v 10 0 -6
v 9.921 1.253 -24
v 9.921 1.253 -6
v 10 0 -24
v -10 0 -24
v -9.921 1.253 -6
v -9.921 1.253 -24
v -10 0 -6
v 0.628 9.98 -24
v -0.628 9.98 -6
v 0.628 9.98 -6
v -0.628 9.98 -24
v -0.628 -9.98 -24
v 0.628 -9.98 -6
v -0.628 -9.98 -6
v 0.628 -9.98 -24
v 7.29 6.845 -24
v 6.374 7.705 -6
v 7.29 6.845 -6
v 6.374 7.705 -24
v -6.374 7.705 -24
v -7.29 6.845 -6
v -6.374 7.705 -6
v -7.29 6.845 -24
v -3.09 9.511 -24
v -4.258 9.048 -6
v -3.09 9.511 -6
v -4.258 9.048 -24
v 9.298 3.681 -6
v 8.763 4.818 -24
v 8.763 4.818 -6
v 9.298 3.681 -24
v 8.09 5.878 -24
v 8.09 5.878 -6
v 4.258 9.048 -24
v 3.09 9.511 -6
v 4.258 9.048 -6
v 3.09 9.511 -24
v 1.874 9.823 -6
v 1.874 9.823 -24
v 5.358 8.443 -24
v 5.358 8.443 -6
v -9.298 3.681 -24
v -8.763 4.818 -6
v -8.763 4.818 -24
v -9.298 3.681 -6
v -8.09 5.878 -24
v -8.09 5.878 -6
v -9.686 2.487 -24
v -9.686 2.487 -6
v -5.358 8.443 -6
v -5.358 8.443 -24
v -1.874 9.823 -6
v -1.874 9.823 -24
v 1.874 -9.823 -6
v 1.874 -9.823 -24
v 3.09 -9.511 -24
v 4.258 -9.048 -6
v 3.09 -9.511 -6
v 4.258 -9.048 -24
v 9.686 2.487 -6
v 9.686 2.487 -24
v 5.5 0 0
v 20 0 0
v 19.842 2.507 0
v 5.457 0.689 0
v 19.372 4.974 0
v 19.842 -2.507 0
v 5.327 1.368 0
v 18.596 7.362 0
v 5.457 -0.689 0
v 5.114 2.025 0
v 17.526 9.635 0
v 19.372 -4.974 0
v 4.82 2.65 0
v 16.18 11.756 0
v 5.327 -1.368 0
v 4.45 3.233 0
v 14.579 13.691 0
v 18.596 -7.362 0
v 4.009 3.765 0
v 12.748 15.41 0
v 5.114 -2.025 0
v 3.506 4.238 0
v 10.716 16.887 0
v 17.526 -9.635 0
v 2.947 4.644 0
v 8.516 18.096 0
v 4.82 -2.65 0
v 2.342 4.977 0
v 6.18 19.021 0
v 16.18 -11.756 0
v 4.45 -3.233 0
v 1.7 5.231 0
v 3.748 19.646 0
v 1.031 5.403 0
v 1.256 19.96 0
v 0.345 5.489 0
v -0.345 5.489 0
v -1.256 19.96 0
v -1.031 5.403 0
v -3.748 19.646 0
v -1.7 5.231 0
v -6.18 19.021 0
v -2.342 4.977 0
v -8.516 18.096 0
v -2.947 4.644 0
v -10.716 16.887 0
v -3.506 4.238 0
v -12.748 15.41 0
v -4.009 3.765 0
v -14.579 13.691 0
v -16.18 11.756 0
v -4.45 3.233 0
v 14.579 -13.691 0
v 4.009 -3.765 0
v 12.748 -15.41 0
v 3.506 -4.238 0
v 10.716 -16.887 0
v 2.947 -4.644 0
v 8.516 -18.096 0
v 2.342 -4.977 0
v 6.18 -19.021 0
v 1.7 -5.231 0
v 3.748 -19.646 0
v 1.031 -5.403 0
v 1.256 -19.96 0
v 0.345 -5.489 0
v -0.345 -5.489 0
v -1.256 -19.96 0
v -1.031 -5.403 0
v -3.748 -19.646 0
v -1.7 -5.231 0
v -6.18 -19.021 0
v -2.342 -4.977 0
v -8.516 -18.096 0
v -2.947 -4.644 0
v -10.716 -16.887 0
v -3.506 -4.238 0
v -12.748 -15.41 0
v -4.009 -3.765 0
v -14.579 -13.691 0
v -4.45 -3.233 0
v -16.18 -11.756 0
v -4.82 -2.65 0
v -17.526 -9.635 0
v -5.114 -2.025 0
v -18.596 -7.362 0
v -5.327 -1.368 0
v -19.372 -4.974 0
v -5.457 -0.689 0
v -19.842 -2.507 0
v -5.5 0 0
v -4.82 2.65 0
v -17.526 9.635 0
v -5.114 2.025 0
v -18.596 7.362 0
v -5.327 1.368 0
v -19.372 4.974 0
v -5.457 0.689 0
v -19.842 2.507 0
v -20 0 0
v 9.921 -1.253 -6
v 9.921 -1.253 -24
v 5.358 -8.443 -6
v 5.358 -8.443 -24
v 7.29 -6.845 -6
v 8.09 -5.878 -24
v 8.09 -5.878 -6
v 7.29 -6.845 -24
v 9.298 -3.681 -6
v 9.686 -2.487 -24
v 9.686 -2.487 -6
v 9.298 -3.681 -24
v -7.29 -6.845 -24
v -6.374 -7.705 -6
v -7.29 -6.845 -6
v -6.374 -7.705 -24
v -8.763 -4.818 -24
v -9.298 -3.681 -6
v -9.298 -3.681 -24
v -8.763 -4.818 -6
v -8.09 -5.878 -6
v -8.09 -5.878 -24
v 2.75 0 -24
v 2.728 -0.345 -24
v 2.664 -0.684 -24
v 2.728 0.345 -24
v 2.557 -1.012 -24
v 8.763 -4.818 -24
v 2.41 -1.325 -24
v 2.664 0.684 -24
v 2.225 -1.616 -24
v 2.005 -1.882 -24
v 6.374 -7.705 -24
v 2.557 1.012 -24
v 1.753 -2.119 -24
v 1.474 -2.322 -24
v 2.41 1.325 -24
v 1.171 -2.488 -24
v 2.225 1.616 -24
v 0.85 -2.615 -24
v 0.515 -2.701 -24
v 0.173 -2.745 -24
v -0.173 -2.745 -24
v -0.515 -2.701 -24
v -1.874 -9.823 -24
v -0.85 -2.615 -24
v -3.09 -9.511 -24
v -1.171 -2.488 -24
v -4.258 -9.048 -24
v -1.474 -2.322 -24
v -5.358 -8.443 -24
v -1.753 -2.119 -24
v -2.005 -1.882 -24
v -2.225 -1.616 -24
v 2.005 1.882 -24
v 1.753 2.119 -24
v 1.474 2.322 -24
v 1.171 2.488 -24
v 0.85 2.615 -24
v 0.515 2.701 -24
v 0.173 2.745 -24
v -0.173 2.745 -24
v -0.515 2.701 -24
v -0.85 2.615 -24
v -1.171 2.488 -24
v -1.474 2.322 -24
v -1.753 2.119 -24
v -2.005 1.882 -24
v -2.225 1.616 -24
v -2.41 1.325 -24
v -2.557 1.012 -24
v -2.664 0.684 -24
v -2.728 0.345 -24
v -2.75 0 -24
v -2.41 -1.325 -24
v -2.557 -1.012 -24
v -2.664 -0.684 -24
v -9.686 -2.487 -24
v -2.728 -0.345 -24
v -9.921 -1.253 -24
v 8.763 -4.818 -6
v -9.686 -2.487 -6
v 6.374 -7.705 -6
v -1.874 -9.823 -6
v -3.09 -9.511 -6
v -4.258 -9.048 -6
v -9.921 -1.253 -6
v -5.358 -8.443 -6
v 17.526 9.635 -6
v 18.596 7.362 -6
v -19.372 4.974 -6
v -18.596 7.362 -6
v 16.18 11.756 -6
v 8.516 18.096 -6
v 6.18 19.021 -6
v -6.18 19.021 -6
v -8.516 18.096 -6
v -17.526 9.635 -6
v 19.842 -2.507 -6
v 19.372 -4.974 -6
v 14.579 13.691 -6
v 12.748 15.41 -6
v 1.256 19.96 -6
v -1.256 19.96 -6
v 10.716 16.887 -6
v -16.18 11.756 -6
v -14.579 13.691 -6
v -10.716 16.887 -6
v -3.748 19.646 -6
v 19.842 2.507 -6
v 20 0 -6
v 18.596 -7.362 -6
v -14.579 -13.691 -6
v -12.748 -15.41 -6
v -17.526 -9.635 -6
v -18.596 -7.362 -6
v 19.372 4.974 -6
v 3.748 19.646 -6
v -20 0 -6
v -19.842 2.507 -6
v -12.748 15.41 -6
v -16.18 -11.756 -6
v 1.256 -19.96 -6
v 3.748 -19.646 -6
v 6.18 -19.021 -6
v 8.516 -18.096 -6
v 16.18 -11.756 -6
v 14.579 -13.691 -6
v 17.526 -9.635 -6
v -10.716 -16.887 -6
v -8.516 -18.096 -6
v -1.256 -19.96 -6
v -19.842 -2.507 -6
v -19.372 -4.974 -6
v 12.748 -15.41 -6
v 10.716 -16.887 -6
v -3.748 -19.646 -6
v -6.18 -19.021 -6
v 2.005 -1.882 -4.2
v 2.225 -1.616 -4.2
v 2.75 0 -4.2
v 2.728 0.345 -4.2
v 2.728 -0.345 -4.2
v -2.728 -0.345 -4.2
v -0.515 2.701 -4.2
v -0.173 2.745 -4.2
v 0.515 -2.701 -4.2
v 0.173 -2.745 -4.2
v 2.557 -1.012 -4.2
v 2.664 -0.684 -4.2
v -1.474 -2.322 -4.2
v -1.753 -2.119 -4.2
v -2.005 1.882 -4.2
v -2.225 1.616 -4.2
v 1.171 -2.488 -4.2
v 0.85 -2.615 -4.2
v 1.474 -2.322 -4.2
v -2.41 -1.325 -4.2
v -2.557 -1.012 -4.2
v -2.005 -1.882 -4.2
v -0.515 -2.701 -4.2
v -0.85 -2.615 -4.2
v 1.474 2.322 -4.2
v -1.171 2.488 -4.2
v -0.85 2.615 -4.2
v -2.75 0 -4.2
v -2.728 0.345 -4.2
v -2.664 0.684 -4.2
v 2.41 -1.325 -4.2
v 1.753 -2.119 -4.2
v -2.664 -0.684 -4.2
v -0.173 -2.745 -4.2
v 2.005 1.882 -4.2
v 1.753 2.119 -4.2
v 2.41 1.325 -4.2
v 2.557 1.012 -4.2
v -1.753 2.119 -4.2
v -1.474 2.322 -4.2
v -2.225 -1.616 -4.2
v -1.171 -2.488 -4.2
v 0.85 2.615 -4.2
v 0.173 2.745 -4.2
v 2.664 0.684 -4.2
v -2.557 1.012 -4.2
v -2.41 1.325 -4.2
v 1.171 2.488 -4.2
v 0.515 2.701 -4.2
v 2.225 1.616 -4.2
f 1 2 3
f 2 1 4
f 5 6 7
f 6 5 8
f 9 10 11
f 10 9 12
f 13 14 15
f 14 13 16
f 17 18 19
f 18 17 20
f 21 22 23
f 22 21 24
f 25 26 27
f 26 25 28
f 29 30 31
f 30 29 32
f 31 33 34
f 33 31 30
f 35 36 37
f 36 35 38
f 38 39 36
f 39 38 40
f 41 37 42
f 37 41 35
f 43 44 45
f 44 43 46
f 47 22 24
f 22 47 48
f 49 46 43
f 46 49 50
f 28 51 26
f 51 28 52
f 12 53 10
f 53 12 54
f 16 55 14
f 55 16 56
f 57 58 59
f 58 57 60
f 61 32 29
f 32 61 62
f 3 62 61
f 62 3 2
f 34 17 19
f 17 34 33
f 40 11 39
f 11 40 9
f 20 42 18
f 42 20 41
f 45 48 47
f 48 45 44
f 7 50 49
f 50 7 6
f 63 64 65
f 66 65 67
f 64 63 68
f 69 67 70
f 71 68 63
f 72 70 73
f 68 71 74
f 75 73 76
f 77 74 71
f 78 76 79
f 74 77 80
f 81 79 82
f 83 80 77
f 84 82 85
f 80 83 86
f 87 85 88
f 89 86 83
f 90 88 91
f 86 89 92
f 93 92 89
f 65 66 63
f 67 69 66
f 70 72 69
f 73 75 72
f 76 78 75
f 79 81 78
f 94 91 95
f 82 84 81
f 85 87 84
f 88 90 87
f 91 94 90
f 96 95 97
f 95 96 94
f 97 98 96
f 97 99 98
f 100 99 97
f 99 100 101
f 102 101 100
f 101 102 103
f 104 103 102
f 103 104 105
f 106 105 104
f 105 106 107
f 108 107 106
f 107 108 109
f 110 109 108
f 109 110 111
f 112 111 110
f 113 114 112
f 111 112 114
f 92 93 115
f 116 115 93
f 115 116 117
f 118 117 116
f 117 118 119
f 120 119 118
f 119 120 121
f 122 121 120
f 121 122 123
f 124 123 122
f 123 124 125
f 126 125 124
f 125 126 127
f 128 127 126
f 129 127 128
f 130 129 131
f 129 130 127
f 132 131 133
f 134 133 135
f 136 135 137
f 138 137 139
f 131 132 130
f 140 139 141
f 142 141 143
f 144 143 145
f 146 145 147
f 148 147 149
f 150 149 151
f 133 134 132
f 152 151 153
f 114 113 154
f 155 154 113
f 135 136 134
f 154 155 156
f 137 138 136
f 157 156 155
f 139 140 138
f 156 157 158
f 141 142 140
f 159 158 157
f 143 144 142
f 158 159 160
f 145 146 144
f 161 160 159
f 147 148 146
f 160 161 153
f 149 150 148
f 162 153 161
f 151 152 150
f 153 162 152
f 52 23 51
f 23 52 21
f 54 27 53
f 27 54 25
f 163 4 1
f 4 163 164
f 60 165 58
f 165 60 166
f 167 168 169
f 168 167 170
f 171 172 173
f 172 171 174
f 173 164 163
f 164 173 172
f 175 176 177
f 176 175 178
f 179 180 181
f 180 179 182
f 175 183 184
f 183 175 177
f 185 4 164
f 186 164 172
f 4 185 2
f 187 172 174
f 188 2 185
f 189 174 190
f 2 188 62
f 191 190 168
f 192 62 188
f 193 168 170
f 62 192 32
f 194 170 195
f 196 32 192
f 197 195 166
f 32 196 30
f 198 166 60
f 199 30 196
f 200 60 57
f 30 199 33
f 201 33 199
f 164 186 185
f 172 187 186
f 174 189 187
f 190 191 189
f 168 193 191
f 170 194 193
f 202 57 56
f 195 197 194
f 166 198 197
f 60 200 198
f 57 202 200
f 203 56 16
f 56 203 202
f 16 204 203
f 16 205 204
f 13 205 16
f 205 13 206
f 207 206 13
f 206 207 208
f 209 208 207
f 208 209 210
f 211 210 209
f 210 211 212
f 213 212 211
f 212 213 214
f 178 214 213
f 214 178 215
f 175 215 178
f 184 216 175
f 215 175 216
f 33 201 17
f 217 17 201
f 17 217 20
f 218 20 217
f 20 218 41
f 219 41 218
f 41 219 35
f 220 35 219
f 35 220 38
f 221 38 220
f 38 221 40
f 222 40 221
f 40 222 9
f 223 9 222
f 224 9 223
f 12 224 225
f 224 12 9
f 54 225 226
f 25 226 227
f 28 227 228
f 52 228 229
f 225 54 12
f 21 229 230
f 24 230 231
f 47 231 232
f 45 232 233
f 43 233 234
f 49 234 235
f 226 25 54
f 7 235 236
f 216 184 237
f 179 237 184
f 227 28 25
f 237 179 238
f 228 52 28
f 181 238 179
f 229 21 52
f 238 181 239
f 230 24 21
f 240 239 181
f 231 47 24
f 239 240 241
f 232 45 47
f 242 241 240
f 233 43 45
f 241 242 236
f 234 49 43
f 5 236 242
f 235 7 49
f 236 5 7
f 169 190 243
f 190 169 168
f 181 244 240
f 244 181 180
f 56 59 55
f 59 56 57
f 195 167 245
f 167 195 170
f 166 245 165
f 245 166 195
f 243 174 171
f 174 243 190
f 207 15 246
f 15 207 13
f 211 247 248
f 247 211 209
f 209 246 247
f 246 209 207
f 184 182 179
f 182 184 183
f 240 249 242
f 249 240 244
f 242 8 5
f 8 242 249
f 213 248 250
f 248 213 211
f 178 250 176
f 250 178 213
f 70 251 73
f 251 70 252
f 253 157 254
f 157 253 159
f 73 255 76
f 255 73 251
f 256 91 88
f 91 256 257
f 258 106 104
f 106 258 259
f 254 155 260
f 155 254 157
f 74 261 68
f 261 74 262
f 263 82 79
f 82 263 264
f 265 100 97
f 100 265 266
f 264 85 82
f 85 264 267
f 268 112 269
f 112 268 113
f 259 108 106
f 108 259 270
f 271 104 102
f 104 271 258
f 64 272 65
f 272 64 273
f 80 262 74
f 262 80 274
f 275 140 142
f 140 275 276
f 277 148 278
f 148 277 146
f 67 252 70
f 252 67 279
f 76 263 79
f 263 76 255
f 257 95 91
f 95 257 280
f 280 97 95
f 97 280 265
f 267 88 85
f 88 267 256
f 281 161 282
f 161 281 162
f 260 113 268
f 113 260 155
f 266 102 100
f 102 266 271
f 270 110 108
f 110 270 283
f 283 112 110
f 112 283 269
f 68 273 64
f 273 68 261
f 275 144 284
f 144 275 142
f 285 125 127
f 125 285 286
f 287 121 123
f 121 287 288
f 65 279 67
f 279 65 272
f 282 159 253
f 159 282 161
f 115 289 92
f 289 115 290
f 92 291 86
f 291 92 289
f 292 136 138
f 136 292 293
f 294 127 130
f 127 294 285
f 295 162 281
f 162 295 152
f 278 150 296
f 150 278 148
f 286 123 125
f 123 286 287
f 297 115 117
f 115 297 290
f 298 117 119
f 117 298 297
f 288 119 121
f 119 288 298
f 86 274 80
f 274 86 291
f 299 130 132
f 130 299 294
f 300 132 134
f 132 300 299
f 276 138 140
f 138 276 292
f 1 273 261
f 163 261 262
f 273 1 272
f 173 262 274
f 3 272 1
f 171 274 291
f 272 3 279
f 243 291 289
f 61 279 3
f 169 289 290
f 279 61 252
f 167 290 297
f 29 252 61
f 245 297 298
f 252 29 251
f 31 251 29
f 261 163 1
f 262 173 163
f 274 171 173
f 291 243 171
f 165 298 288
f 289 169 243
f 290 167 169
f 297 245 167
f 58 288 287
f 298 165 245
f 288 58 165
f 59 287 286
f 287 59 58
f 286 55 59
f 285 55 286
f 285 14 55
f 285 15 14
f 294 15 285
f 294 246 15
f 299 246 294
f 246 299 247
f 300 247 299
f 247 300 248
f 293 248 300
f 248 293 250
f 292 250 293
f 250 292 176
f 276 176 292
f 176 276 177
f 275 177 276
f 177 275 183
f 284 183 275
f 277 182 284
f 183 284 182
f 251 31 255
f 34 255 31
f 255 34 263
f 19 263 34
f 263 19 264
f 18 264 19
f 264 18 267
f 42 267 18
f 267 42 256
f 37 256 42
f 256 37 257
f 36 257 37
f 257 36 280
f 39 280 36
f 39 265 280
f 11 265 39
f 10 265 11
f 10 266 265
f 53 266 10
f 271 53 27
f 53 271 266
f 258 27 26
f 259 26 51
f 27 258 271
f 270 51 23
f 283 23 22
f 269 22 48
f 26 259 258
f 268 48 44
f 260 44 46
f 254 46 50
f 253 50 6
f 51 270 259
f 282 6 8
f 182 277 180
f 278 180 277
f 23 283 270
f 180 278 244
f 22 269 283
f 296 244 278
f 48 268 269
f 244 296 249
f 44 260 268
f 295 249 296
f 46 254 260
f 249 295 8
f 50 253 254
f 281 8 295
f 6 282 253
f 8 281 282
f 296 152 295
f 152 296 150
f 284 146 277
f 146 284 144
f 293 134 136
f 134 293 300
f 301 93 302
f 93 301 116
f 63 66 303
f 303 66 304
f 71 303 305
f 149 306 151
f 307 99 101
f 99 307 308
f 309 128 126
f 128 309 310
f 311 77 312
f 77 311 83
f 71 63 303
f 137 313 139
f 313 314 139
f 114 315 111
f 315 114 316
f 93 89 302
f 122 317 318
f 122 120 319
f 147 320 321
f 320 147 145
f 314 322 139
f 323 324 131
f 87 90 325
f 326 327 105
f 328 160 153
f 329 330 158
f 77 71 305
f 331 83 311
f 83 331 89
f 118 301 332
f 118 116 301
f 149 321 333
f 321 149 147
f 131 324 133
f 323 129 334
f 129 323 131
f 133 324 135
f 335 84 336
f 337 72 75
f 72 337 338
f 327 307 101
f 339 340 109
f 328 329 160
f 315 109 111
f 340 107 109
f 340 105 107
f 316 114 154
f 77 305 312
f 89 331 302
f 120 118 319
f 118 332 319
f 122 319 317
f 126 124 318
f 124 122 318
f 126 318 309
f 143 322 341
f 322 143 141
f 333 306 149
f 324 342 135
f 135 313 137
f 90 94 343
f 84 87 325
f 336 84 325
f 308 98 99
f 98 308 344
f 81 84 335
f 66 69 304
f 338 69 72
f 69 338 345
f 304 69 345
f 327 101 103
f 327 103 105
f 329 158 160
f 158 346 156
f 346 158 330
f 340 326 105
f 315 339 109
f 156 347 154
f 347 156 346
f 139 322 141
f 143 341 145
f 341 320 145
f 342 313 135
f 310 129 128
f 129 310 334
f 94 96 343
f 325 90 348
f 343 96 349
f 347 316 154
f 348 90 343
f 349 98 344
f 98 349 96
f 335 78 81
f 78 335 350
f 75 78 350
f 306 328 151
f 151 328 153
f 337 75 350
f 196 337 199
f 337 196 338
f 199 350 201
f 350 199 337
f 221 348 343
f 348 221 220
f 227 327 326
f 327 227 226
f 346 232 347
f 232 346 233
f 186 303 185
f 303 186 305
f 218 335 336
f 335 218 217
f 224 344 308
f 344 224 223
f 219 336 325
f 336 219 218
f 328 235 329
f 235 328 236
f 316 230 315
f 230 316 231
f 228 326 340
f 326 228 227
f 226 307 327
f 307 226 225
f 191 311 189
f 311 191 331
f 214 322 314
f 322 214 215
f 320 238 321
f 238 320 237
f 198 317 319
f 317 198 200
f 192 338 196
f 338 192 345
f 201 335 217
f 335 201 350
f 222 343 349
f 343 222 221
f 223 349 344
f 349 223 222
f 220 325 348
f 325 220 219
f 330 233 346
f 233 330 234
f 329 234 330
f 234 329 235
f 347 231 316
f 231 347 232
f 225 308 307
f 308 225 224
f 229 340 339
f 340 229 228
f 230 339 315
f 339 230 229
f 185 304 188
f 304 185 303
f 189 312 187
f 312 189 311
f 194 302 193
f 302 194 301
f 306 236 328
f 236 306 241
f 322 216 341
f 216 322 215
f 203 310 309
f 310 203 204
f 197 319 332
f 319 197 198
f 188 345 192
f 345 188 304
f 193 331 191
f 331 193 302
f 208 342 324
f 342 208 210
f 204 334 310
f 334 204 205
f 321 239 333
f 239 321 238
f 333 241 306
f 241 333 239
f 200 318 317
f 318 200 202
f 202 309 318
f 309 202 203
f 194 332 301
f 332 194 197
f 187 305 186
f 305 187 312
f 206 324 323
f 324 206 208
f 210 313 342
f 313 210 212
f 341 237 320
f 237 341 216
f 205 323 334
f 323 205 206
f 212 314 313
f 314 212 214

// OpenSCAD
$fn = 50;


difference() {
	union() {
		translate(v = [0, 0, -24.0000000000]) {
			cylinder(h = 24, r = 10.0000000000);
		}
		translate(v = [0, 0, -6.0000000000]) {
			cylinder(h = 6, r = 20.0000000000);
		}
	}
	union() {
		translate(v = [0, 0, 0]) {
			rotate(a = [0, 0, 0]) {
				difference() {
					union() {
						#translate(v = [0, 0, -24.0000000000]) {
							cylinder(h = 24, r = 2.2500000000);
						}
						#translate(v = [0, 0, -4.2000000000]) {
							cylinder(h = 4.2000000000, r1 = 2.7500000000, r2 = 5.5000000000);
						}
						#translate(v = [0, 0, -24.0000000000]) {
							cylinder(h = 24, r = 2.7500000000);
						}
						#translate(v = [0, 0, -24.0000000000]) {
							cylinder(h = 24, r = 2.2500000000);
						}
					}
					union();
				}
			}
		}
	}
}
